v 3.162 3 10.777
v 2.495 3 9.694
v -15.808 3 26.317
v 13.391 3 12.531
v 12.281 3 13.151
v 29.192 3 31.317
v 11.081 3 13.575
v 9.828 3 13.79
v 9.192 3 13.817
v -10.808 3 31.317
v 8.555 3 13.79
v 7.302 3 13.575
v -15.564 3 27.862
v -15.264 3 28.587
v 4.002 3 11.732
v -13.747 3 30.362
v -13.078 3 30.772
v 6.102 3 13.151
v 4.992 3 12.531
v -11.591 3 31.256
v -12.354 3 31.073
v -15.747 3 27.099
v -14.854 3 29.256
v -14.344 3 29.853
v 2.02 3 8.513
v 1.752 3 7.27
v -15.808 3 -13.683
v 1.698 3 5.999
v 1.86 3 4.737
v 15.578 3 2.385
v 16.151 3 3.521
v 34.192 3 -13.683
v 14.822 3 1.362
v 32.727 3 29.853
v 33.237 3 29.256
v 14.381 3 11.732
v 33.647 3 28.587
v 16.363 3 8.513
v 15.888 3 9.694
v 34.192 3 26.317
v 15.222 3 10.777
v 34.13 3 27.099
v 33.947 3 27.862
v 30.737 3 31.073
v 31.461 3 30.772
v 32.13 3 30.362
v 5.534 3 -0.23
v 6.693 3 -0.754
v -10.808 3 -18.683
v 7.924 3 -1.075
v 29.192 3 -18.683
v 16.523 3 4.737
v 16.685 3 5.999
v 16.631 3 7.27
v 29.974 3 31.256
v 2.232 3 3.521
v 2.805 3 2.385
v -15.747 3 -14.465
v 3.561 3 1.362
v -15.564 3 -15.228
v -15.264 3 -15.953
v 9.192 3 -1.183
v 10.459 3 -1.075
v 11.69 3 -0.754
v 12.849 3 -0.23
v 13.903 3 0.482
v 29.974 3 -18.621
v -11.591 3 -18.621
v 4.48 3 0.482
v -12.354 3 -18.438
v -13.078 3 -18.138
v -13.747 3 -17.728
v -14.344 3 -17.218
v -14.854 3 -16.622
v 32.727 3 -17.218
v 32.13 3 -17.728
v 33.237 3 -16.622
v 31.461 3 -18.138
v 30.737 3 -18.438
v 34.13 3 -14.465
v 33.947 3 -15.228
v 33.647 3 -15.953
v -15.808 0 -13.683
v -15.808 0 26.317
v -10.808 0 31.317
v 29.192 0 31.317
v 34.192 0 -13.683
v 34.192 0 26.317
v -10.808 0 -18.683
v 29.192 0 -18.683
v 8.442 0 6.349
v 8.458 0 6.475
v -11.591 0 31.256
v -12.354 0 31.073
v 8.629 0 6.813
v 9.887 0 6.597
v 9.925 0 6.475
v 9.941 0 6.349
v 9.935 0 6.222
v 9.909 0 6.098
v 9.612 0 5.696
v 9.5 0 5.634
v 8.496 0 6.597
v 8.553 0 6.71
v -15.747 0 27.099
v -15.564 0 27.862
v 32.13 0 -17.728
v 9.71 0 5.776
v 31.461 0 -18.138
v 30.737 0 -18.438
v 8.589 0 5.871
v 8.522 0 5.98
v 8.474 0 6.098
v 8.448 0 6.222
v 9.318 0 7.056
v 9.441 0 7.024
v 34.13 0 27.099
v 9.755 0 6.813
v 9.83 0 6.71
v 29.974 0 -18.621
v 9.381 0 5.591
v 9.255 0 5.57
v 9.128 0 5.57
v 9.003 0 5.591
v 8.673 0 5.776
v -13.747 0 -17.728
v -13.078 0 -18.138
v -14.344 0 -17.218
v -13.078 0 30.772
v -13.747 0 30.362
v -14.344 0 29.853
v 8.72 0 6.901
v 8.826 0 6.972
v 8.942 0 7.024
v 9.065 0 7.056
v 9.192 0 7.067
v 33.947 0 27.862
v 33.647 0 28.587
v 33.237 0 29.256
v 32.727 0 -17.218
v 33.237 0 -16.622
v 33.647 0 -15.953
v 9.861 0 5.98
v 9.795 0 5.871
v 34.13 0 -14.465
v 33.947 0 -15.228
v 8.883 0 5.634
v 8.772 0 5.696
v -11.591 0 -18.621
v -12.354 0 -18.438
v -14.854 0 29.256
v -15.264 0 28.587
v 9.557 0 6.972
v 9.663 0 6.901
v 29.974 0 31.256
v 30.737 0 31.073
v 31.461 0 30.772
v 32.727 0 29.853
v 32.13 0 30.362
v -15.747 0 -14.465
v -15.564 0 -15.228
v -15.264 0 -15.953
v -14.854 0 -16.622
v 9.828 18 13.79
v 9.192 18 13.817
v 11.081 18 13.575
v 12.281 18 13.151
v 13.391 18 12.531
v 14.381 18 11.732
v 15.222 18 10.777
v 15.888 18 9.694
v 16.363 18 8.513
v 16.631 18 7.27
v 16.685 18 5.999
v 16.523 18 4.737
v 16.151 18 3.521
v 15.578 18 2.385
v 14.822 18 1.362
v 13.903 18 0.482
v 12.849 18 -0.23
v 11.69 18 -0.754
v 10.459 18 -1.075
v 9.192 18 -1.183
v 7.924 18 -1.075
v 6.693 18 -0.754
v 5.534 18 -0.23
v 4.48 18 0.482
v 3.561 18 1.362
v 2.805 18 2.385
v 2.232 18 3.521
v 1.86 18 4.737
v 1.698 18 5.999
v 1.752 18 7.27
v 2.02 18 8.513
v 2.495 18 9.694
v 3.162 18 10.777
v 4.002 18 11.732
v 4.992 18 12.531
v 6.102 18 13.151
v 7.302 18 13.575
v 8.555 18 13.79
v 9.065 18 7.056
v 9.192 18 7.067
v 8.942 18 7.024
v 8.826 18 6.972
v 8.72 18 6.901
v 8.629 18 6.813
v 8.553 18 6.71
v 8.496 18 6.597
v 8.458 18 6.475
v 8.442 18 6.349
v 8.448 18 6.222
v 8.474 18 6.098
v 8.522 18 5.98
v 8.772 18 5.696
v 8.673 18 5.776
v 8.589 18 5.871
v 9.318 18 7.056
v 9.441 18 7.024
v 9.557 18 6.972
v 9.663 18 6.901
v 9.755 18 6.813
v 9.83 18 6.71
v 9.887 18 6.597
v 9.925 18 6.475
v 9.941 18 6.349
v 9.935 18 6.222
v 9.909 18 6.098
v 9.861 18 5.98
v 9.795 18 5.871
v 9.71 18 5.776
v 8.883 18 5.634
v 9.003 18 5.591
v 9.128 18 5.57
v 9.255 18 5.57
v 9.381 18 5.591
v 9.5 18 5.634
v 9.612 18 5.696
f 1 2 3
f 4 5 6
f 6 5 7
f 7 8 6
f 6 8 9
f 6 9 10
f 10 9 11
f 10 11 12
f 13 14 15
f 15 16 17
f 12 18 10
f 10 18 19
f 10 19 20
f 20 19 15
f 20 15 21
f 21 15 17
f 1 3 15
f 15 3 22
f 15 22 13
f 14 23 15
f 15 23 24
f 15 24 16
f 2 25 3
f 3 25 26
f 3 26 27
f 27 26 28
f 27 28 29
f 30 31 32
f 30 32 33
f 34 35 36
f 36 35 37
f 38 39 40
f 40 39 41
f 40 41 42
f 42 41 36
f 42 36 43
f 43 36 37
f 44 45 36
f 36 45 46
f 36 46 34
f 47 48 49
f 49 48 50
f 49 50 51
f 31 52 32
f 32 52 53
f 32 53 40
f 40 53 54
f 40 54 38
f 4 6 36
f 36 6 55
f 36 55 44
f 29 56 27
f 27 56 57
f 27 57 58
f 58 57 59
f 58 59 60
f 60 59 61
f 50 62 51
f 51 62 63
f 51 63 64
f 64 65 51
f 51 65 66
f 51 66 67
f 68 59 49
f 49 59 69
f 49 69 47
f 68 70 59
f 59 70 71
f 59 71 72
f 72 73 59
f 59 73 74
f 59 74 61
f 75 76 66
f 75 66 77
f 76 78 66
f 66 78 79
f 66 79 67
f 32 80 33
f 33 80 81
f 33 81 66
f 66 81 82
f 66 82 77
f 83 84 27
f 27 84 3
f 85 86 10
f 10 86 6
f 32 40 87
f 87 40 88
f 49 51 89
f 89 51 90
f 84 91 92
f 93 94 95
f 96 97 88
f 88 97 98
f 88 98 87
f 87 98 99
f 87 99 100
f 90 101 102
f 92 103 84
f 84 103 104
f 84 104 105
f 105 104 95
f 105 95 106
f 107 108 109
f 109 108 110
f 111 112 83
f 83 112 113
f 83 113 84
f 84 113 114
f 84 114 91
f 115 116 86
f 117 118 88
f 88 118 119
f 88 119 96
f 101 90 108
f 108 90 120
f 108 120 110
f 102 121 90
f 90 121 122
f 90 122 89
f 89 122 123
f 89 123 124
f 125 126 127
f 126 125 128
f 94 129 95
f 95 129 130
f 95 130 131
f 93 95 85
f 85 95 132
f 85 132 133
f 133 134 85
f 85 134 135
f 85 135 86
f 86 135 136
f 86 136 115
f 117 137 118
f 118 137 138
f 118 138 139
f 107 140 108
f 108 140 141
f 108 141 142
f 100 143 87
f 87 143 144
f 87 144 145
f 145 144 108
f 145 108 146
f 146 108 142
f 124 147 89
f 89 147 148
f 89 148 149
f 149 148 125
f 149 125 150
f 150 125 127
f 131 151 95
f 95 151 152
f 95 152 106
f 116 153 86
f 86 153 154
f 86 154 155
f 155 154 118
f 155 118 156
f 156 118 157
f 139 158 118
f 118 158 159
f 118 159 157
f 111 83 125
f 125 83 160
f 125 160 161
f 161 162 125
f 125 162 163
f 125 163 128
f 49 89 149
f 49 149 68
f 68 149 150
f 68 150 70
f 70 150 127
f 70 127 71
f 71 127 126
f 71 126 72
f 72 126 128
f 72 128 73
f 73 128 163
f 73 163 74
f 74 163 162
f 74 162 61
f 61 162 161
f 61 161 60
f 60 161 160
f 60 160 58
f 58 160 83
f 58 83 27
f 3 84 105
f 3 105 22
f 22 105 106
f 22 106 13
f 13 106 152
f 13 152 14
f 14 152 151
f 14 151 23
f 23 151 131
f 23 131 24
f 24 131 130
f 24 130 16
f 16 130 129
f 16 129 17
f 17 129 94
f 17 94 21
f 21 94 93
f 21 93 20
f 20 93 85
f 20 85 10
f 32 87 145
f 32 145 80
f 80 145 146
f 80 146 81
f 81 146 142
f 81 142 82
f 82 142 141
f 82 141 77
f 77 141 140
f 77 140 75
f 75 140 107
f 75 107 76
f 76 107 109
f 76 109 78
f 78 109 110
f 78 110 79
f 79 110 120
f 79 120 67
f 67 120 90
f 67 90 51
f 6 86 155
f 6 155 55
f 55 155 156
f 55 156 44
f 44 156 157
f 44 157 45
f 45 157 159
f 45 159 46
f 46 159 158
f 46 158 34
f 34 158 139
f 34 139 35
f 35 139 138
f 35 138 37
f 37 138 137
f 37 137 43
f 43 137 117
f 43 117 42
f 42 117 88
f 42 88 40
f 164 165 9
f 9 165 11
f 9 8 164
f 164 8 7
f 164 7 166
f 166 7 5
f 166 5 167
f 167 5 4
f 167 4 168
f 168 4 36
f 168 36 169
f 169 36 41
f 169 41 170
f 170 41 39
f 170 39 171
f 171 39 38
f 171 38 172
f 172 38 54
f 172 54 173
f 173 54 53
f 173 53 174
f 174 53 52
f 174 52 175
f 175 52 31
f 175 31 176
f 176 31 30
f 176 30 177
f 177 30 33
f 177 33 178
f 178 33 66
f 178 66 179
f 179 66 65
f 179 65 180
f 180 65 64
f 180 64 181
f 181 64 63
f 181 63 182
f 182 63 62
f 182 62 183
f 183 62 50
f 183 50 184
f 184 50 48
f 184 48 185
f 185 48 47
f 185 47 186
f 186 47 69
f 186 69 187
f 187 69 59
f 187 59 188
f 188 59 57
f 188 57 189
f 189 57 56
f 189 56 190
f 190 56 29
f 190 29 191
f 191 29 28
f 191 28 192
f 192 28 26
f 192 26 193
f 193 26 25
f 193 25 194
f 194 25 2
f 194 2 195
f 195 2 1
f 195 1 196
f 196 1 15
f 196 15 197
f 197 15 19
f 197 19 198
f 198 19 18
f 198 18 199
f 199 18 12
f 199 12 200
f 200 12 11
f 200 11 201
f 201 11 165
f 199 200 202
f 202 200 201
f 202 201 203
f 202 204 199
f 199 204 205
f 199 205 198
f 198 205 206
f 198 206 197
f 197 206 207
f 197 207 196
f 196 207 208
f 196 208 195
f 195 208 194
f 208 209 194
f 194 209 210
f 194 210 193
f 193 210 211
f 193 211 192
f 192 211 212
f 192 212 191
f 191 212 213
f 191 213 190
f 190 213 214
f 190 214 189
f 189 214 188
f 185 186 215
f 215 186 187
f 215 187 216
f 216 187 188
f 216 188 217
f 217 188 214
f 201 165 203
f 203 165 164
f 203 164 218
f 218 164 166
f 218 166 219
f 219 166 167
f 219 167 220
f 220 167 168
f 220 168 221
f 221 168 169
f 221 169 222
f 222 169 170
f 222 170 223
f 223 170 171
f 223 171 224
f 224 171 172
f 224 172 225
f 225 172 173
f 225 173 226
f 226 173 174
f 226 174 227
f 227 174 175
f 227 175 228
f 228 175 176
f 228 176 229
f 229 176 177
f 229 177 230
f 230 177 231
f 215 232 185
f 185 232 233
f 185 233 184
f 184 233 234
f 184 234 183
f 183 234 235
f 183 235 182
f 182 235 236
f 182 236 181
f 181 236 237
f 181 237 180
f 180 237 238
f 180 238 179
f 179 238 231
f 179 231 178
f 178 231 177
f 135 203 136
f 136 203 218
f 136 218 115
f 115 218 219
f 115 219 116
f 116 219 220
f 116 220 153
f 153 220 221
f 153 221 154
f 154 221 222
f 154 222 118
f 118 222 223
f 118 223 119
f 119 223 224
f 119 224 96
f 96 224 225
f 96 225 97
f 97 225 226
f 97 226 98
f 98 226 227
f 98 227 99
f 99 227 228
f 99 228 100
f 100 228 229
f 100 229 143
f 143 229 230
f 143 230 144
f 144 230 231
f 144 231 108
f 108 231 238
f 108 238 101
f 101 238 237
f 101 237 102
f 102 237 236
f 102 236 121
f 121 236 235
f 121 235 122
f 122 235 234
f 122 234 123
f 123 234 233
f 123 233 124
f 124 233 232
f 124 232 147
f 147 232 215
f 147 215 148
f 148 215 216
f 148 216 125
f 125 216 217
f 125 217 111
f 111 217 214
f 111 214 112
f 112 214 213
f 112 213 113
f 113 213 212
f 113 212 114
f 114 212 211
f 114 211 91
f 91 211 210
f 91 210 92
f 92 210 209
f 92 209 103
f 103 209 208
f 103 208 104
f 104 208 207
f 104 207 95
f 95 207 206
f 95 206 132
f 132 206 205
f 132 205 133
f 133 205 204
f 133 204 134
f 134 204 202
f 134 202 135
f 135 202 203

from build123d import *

# Parameters (mm, degrees)
SCHIZZO1_W                   = 50
SCHIZZO1_H                   = 50
ESTRUSIONE_ESTRUSIONE1_DEPTH = 3
RACCORDO1_R                  = 5
SCHIZZO2_R                   = 7.5
ESTRUSIONE_ESTRUSIONE2_DEPTH = 15
SCHIZZO3_R                   = 0.75
TAGLIO_ESTRUSIONE1_DEPTH     = 50.737621267


with BuildPart() as part:
    # Schizzo1 → Estrusione-Estrusione1 (new body)
    with BuildSketch(Plane(origin=(0, 0, 0), x_dir=(1, 0, 0), z_dir=(0, 1, 0))):
        with Locations((9.19152509, -6.317256925)):
            Rectangle(SCHIZZO1_W, SCHIZZO1_H)
    extrude(amount=ESTRUSIONE_ESTRUSIONE1_DEPTH)

    # Raccordo1
    raccordo1_edges = [part.edges().sort_by_distance(p)[0] for p in [
        (-15.80847491, 1.5, -18.682743075),
        (34.19152509, 1.5, -18.682743075),
        (34.19152509, 1.5, 31.317256925),
        (-15.80847491, 1.5, 31.317256925),
    ]]
    fillet(raccordo1_edges, radius=RACCORDO1_R)

    # Schizzo2 → Estrusione-Estrusione2 (add)
    with BuildSketch(Plane(origin=(0, 3, 0), x_dir=(1, 0, 0), z_dir=(0, 1, 0))):
        with Locations(Location((9.19152509, -6.317256925, 0), (0, 0, 270))):
            Circle(SCHIZZO2_R)
    extrude(amount=ESTRUSIONE_ESTRUSIONE2_DEPTH)

    # Schizzo3 → Taglio-Estrusione1 (cut, through all)
    with BuildSketch(Plane(origin=(0, 18, 0), x_dir=(1, 0, 0), z_dir=(0, 1, 0))):
        with Locations(Location((9.19152509, -6.317256925, 0), (0, 0, 270))):
            Circle(SCHIZZO3_R)
    extrude(amount=-TAGLIO_ESTRUSIONE1_DEPTH, mode=Mode.SUBTRACT)


solid = part.part
